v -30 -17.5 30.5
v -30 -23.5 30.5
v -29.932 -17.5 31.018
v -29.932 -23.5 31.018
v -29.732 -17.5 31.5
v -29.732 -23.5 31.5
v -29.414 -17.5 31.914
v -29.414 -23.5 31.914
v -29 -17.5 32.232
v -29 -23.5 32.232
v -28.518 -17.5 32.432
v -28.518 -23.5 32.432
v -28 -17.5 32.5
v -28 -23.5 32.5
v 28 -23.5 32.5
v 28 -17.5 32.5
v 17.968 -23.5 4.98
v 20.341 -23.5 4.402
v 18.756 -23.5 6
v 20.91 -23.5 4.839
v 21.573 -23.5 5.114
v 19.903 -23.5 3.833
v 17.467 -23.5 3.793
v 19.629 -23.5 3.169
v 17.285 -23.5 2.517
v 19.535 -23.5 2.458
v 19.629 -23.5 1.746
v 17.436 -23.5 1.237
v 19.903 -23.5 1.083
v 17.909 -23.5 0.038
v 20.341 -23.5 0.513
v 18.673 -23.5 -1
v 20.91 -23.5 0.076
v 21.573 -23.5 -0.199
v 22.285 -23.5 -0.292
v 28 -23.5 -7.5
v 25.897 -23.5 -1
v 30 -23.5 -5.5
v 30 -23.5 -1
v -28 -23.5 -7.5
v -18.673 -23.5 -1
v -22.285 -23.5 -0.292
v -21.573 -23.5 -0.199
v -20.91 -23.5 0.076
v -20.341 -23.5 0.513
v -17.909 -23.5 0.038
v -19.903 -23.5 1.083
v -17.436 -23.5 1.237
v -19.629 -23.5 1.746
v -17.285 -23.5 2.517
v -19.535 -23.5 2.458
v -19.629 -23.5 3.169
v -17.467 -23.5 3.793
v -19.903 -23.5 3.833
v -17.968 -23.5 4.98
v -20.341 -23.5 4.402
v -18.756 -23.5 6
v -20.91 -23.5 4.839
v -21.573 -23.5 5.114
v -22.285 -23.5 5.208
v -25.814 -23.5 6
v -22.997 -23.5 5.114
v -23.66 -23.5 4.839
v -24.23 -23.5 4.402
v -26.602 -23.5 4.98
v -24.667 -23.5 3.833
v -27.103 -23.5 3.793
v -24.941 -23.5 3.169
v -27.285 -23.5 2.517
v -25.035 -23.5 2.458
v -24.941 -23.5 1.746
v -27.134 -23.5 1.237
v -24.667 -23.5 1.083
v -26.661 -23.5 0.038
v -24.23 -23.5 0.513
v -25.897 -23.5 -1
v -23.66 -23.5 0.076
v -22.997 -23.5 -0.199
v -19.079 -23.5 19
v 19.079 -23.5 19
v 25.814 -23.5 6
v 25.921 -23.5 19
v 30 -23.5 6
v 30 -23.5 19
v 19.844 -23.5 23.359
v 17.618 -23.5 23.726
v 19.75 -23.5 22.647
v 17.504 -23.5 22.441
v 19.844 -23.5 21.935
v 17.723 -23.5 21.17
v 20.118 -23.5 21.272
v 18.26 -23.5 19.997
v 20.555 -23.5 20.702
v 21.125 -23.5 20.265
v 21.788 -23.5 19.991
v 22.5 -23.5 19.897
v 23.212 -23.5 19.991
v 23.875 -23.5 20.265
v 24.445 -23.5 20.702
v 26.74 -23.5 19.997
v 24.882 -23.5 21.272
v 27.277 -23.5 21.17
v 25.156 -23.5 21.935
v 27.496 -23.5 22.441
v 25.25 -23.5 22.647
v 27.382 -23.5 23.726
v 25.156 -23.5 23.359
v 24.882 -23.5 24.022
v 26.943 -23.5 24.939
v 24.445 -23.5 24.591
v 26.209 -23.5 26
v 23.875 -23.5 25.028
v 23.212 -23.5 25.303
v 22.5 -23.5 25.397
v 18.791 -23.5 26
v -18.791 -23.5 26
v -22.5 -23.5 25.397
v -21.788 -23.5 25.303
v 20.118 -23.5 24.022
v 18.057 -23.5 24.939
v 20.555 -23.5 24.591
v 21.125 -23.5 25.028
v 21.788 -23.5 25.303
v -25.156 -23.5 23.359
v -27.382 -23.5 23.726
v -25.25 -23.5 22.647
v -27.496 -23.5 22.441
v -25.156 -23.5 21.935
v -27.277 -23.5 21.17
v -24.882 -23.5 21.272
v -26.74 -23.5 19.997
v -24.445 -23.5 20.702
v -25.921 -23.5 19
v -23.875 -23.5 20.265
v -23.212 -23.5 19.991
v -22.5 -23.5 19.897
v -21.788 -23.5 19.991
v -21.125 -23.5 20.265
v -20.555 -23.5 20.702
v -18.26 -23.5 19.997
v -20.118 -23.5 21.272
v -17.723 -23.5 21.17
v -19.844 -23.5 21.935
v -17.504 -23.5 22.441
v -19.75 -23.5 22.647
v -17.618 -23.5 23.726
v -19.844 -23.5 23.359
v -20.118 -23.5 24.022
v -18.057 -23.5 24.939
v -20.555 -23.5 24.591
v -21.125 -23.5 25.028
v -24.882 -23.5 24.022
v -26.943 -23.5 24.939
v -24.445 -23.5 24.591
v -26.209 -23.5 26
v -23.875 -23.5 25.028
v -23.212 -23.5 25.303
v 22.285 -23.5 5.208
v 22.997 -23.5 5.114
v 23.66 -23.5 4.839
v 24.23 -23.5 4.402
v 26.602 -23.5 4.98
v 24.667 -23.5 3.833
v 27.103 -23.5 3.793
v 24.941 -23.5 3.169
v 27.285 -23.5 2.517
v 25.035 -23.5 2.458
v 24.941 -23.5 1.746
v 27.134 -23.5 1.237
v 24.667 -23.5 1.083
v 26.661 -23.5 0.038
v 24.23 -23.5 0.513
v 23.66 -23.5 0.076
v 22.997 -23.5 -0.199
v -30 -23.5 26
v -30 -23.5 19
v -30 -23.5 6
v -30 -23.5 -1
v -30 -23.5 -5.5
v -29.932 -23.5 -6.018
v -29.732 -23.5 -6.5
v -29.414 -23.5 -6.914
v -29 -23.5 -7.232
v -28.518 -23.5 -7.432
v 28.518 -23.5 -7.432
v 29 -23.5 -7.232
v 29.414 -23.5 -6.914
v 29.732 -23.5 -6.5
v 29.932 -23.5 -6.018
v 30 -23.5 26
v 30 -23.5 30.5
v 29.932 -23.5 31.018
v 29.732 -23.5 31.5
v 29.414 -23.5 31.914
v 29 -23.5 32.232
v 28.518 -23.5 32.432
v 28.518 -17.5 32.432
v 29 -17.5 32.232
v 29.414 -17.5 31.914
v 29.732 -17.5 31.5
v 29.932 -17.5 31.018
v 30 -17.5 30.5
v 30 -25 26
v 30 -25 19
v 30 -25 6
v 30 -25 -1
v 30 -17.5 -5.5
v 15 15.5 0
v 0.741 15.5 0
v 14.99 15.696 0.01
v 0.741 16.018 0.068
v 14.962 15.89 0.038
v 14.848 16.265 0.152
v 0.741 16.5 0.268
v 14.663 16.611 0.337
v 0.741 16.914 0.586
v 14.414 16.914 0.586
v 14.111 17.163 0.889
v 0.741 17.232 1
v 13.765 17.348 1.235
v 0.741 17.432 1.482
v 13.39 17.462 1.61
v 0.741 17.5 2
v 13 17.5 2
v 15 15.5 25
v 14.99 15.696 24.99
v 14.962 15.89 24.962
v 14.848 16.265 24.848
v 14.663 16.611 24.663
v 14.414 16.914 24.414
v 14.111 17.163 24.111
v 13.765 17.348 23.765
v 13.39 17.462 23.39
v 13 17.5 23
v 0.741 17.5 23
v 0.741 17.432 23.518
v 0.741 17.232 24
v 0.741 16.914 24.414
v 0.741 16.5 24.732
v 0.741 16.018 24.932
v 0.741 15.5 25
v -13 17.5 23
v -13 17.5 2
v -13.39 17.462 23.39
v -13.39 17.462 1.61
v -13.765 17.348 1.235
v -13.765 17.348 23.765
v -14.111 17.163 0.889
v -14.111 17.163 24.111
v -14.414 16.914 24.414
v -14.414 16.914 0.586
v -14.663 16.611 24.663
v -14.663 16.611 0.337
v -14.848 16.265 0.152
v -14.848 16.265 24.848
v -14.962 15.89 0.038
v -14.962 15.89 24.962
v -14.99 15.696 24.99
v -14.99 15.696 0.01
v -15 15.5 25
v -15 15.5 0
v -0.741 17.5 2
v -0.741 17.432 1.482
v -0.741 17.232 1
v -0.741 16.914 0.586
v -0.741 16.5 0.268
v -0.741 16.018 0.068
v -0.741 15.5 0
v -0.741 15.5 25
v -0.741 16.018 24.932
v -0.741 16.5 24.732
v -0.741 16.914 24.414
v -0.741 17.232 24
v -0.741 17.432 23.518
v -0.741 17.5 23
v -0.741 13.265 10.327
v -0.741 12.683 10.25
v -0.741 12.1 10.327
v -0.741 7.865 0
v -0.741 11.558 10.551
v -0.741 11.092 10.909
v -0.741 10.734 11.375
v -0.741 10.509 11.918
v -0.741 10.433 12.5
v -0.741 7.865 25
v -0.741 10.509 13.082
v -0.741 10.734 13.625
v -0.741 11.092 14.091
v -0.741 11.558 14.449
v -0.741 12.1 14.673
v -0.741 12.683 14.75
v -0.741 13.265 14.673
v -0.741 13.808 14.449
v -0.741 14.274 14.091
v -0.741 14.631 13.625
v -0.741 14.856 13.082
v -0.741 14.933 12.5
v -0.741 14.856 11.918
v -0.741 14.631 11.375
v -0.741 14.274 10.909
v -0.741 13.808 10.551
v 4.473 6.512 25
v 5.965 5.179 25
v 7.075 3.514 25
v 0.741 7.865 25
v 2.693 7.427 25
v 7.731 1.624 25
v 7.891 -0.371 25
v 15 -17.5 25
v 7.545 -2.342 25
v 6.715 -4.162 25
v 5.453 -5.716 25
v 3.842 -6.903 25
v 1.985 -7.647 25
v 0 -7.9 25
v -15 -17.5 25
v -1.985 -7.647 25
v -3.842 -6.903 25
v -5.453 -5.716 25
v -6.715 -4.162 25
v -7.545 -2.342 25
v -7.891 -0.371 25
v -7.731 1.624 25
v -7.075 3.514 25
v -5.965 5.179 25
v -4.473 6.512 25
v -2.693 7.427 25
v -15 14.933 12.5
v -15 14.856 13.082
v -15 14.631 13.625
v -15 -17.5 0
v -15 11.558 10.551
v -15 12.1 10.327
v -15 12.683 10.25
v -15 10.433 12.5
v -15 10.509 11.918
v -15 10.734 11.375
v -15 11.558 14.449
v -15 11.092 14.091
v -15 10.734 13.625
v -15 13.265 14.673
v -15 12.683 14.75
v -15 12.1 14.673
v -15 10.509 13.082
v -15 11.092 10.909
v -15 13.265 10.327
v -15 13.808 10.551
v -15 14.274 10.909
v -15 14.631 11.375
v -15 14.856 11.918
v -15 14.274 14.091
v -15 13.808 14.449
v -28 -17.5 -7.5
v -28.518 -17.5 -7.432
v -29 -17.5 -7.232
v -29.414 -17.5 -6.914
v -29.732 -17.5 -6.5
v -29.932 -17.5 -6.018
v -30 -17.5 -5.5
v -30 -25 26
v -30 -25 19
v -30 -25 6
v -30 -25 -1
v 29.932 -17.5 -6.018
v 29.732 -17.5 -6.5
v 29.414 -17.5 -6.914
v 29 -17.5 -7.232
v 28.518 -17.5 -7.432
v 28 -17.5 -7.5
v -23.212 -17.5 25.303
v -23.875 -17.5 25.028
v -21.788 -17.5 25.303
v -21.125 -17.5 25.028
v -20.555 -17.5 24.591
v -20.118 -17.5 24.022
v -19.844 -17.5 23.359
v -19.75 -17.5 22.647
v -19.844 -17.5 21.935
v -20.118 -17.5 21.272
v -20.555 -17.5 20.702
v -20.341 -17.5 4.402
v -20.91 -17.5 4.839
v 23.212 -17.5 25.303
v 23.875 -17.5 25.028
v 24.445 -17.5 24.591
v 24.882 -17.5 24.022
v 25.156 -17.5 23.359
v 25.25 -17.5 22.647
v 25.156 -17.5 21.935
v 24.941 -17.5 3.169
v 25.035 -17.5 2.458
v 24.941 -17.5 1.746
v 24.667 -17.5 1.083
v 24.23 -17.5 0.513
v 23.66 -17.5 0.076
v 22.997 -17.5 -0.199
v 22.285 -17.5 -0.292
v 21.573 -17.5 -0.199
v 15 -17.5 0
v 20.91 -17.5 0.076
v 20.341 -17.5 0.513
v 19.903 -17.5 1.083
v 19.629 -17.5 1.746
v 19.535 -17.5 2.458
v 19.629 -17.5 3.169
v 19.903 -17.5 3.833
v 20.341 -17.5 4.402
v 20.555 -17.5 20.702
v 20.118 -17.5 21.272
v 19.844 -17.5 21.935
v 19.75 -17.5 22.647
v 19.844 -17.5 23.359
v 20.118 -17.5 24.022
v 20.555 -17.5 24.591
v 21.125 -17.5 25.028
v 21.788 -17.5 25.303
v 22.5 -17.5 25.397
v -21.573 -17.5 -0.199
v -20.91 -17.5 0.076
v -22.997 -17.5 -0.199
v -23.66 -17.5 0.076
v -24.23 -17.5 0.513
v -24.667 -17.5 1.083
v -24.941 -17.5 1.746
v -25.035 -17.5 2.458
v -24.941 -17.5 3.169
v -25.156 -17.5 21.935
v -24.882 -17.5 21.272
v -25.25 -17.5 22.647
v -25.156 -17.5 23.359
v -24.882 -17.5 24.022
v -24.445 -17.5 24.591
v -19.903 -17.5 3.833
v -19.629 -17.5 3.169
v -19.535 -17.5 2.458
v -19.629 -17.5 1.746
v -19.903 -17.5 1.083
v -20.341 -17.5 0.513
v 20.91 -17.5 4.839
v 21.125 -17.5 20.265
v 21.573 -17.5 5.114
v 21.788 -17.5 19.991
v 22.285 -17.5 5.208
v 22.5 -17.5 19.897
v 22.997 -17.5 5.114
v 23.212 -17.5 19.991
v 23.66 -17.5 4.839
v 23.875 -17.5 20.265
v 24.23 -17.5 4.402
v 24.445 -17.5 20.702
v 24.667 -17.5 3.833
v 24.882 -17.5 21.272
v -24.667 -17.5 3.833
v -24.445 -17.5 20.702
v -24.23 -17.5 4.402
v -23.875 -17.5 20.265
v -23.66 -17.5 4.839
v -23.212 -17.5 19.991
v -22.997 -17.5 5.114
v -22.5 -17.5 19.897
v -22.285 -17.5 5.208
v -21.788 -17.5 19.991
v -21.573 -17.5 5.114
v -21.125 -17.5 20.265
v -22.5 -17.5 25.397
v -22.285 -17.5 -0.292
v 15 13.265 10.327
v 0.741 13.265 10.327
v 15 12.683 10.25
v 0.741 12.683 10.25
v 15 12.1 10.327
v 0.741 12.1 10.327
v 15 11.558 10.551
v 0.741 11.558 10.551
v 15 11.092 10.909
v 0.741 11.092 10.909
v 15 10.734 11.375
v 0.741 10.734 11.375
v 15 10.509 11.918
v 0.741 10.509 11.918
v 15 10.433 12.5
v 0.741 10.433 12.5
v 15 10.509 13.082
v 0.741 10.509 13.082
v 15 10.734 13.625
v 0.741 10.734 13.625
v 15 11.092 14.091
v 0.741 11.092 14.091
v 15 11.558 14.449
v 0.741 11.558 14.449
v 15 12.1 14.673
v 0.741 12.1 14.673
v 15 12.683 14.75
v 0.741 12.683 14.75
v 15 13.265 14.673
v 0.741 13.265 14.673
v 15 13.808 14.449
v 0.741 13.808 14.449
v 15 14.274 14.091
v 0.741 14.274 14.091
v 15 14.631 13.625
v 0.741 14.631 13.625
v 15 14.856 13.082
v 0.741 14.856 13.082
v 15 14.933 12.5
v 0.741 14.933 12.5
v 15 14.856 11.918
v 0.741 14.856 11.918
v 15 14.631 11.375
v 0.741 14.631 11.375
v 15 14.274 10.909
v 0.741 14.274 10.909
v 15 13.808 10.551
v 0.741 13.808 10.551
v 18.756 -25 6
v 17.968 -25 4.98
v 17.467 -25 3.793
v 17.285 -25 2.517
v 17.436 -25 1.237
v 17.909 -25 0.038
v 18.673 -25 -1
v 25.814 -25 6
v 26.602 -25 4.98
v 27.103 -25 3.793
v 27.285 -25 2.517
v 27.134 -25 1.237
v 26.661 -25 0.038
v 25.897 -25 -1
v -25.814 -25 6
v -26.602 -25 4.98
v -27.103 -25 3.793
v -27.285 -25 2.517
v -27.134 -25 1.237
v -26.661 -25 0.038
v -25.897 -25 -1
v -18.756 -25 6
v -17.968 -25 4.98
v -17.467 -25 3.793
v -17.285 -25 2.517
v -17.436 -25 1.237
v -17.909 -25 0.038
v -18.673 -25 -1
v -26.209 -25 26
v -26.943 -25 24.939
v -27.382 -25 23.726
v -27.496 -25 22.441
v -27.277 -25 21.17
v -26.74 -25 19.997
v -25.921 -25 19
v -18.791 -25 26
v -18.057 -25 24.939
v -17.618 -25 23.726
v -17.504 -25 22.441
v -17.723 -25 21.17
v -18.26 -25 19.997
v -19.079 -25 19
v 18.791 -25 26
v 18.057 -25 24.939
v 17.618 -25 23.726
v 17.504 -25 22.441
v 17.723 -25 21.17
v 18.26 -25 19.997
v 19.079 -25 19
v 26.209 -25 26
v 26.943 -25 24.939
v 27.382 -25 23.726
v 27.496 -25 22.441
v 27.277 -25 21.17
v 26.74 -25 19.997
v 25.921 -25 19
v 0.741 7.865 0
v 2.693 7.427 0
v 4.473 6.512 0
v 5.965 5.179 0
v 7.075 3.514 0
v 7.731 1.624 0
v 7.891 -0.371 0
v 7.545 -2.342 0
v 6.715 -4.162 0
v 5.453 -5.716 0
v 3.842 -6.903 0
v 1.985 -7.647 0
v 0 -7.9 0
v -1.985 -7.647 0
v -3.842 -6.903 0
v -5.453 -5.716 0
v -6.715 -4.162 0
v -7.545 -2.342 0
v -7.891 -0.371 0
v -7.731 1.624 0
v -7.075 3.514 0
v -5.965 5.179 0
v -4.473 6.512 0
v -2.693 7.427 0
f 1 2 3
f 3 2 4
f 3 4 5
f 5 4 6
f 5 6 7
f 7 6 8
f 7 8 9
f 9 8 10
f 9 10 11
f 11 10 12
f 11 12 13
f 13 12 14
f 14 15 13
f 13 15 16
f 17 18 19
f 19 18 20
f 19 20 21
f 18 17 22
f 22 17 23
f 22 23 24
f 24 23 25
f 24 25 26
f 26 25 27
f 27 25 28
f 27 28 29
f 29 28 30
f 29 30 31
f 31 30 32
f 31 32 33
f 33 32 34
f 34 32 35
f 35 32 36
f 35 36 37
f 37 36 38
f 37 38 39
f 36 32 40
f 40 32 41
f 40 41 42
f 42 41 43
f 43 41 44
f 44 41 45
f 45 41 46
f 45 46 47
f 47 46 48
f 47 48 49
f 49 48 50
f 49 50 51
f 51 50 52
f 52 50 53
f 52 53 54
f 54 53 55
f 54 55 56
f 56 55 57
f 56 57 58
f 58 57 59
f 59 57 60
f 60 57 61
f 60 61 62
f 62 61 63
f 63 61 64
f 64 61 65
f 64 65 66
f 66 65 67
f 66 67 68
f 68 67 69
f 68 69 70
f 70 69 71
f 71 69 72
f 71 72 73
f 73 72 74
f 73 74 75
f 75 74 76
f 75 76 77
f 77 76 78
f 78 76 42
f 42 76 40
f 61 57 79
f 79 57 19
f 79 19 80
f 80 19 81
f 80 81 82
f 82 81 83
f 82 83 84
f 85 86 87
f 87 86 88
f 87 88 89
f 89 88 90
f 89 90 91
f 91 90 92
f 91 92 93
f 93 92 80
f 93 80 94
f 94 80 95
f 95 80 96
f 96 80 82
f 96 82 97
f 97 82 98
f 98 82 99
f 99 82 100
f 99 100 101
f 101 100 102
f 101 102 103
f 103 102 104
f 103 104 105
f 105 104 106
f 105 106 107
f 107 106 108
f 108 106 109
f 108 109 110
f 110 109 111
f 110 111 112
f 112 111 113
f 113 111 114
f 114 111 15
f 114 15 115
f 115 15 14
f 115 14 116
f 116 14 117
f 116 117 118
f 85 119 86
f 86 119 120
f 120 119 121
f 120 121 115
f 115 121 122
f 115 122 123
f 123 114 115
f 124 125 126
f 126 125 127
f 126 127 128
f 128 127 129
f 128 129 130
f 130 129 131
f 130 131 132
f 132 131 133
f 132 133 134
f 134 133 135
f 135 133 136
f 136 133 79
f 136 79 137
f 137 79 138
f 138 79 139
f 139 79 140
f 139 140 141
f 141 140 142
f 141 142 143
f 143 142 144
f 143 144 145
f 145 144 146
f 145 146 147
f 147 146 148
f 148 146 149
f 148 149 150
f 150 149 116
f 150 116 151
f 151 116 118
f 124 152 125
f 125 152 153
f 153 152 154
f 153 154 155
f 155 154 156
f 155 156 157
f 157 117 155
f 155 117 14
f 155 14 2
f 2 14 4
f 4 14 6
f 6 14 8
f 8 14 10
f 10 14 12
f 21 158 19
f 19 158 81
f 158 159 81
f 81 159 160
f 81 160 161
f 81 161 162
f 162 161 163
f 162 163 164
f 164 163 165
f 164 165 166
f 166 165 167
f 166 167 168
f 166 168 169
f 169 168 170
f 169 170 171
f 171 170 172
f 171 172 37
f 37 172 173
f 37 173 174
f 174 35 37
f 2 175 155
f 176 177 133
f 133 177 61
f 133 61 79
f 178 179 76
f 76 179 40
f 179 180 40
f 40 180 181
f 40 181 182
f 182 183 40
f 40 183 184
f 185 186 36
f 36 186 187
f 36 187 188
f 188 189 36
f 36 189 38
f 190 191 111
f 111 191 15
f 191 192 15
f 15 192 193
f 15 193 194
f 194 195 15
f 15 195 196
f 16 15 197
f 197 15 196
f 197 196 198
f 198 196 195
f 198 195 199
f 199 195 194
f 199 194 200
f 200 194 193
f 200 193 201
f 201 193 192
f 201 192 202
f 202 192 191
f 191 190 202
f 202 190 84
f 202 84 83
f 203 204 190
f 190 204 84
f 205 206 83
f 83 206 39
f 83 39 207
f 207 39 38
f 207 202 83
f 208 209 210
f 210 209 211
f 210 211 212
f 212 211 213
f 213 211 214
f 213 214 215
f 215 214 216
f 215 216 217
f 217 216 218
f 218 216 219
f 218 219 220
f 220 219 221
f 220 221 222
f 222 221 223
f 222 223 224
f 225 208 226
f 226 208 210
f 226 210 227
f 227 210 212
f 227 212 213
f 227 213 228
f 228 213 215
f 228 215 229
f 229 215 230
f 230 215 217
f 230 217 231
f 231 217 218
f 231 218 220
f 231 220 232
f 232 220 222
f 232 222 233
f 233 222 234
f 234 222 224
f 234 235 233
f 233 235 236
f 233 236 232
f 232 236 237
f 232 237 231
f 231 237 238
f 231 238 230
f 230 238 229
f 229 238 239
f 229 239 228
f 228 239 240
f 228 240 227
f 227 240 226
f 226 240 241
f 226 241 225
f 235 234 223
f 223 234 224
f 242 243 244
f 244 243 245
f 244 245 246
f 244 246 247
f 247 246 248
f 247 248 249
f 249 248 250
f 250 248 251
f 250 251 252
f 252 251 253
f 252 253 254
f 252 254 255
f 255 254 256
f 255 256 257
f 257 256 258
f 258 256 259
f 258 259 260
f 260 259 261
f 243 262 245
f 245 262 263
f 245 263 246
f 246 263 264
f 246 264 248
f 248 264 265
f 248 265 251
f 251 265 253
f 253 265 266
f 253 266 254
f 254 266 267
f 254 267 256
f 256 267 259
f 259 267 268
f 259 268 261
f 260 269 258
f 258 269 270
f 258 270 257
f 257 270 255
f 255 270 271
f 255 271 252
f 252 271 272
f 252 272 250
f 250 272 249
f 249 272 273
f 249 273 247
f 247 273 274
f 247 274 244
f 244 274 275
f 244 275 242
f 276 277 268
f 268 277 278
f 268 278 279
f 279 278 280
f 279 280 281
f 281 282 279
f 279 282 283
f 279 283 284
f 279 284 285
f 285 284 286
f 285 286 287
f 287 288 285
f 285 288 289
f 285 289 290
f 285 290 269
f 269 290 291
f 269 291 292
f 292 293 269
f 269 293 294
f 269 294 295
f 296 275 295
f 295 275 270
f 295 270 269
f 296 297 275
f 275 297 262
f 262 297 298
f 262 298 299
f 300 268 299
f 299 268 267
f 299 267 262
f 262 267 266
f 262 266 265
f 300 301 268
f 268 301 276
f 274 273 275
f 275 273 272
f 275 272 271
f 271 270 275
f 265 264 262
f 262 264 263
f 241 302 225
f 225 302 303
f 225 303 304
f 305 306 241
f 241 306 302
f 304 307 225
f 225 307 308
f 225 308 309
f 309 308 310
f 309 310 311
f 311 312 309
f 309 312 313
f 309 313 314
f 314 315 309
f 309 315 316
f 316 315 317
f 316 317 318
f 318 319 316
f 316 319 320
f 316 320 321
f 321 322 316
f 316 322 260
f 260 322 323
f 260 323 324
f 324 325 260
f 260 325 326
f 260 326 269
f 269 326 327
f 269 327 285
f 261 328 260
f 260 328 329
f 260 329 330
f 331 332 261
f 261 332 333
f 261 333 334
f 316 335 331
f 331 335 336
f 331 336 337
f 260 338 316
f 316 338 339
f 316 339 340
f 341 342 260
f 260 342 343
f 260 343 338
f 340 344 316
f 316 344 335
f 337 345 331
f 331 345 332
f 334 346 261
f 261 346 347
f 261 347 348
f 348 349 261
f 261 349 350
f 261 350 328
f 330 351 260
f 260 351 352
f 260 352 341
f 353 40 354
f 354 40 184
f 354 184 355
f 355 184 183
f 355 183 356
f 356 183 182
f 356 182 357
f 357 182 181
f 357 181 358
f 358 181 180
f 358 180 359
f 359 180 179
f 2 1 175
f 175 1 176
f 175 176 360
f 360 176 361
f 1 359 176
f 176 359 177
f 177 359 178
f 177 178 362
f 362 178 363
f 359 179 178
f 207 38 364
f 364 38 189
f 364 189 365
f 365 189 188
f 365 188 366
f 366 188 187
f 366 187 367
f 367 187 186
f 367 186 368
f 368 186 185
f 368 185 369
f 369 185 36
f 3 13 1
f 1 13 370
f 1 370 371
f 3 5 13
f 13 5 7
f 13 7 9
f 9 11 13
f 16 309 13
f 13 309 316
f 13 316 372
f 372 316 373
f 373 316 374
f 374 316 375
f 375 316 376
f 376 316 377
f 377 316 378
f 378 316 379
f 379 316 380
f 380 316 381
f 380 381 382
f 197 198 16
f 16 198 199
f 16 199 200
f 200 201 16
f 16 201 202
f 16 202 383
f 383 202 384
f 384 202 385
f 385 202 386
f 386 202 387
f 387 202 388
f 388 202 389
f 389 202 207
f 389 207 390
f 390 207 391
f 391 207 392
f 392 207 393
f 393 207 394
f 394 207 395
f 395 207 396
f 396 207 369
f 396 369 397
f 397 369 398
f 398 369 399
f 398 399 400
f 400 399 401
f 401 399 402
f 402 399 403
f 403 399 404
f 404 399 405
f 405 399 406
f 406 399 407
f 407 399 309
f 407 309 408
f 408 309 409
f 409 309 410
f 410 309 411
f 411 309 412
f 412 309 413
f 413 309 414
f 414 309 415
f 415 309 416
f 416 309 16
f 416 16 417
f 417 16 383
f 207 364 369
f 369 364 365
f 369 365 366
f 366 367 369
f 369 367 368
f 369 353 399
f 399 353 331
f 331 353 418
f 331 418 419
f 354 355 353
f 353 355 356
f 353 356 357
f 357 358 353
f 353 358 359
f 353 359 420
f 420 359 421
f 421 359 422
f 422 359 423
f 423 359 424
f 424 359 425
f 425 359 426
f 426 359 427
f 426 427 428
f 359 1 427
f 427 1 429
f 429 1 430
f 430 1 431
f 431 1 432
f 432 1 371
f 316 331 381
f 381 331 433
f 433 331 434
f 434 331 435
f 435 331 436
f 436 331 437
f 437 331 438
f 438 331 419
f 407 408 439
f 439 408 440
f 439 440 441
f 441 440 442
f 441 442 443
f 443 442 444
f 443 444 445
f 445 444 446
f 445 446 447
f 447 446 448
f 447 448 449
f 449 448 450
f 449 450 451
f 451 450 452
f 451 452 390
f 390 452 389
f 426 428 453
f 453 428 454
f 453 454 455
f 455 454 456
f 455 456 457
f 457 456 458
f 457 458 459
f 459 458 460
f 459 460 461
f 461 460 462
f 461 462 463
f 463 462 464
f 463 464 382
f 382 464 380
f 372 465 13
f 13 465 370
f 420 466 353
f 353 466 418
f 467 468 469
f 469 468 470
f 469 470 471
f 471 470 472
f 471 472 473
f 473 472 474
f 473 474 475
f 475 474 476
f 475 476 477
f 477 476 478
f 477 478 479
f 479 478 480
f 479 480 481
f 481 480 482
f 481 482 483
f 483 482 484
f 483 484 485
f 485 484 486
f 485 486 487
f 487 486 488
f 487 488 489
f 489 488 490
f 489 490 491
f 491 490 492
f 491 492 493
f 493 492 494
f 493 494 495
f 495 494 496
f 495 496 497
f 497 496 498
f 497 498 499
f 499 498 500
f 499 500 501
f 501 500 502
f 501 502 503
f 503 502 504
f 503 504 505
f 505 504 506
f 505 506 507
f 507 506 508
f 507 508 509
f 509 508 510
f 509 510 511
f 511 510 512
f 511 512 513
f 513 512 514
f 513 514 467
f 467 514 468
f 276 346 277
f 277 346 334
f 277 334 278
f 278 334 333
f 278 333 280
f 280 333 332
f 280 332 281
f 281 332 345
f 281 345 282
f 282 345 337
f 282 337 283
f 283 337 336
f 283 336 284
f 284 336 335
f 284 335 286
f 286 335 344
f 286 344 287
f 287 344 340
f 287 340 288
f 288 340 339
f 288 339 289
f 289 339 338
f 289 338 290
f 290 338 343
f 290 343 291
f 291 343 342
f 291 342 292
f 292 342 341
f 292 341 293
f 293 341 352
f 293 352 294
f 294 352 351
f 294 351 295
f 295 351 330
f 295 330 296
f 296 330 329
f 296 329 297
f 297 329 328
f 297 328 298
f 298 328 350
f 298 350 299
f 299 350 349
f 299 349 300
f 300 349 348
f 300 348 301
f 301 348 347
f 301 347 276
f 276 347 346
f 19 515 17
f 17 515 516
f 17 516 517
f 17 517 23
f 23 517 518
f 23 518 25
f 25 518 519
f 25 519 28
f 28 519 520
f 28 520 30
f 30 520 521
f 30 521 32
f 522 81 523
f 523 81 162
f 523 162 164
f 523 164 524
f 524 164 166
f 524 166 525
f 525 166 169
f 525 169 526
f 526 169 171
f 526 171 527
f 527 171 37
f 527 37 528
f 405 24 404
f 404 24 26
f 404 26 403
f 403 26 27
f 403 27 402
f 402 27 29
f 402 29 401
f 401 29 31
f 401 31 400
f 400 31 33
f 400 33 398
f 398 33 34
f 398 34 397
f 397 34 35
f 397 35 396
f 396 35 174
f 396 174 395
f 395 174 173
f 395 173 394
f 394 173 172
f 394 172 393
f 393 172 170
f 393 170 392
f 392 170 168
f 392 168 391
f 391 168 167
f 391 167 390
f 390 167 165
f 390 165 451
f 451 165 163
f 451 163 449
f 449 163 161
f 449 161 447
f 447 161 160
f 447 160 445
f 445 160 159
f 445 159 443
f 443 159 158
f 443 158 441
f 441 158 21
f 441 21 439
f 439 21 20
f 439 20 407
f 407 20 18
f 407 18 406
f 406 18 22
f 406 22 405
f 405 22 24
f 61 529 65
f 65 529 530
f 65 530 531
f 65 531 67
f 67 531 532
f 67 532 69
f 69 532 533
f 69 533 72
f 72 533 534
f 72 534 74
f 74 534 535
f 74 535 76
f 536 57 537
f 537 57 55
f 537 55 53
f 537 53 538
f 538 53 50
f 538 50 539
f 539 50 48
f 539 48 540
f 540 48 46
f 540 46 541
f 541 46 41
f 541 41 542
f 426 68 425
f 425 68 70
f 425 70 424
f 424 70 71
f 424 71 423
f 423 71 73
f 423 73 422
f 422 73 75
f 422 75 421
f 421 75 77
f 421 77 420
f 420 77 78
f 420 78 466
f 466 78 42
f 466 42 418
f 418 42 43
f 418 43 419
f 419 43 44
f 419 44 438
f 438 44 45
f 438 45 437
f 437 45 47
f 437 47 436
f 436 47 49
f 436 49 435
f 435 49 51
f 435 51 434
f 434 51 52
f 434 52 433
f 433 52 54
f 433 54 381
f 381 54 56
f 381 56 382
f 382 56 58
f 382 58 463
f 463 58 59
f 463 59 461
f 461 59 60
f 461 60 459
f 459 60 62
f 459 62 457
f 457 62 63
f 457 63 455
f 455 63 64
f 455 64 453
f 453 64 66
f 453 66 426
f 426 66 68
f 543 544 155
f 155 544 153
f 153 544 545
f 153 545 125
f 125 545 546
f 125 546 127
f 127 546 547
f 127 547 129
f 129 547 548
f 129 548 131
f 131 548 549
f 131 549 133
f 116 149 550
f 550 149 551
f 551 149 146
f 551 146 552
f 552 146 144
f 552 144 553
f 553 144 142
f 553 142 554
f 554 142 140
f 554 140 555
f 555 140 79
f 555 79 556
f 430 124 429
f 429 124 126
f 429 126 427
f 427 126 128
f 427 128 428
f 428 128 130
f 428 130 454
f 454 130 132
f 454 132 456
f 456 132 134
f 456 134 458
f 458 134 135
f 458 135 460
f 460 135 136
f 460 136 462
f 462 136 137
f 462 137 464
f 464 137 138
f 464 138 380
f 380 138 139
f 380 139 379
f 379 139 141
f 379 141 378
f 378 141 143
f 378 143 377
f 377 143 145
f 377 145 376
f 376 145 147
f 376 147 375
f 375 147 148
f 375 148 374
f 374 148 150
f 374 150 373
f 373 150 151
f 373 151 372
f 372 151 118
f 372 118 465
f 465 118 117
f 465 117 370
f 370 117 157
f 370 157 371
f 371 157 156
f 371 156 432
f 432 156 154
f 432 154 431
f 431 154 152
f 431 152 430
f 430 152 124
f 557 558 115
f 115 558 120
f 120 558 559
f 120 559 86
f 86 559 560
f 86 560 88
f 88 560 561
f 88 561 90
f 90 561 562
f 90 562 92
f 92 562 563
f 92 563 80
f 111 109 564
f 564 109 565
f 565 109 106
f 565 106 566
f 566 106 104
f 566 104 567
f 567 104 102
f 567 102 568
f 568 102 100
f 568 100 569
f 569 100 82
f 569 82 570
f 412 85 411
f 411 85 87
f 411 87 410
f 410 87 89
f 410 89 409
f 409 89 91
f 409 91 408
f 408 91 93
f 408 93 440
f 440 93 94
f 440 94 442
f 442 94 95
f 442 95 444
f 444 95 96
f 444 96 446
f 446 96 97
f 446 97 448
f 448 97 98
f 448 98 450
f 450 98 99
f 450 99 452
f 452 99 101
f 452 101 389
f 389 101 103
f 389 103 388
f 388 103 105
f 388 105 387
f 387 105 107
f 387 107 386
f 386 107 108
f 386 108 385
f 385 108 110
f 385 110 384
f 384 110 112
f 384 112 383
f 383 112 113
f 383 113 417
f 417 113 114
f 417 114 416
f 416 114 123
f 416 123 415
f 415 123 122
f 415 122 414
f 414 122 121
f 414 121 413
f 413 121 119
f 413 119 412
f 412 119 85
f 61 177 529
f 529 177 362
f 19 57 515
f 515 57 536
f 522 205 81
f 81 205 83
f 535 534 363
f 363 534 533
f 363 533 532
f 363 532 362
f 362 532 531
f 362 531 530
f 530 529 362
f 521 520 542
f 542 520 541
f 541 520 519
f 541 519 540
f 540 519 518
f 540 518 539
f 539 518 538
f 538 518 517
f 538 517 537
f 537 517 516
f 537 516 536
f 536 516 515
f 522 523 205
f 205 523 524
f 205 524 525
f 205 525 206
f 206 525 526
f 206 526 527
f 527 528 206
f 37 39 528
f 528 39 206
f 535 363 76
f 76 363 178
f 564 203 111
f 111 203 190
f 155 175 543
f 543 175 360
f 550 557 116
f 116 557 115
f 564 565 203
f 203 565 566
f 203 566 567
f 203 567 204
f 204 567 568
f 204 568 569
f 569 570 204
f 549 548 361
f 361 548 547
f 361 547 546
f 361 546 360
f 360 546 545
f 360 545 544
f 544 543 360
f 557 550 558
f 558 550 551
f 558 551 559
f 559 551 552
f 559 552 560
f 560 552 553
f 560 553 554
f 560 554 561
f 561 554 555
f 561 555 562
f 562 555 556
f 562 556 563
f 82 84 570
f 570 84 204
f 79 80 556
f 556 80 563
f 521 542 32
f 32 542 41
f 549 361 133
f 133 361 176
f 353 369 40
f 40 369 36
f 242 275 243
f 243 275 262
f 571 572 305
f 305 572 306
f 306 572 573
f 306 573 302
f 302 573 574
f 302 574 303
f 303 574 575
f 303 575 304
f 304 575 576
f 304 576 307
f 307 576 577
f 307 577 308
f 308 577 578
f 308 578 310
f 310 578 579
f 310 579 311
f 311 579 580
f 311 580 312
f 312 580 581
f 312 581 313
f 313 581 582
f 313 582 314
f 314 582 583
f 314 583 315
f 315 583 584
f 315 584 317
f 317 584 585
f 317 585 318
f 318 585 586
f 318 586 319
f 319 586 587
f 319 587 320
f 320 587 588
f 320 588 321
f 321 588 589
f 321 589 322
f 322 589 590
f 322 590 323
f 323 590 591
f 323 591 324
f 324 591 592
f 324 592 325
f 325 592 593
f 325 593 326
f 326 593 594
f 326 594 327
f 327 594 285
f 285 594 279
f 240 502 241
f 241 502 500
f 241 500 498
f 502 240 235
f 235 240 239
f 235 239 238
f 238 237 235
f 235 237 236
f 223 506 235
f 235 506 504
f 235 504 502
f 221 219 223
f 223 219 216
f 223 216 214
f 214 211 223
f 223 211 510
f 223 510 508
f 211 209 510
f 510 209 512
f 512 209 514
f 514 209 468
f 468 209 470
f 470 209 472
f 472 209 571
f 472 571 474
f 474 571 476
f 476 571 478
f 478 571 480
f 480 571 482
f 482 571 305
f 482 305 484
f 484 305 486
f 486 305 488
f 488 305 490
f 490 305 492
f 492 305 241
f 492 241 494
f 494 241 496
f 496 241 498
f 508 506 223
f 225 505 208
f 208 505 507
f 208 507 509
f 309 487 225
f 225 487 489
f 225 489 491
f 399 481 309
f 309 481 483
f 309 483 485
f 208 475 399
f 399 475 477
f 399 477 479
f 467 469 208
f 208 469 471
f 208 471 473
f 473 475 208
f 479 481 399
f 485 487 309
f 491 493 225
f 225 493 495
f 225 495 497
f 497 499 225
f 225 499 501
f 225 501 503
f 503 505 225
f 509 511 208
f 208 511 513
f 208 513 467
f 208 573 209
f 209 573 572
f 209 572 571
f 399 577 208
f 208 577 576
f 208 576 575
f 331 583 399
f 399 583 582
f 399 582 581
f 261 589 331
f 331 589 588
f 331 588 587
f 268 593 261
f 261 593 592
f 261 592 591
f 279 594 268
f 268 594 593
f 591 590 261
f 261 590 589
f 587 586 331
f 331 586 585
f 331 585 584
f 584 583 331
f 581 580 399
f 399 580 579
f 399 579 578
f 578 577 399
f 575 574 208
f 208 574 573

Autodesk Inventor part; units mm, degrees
ref_plane "YZ Plane" through (0, 0, 0) normal (1, 0, 0) x (0, 1, 0)
ref_plane "XZ Plane" through (0, 0, 0) normal (0, 1, 0) x (-1, 0, 0)
ref_plane "XY Plane" through (0, 0, 0) normal (0, 0, 1) x (1, 0, 0)
sketch "Sketch1" plane through (0, 0, 0) normal (0, 0, 1) x (1, 0, 0)
  arc A0 (-0.7406, 7.8652) -> (0.7406, 7.8652) centre (0, 0) ccw
  line L0 (15, 17.5) -> (15, -17.5)
  line L1 (15, -17.5) -> (-15, -17.5)
  line L2 (-15, -17.5) -> (-15, 17.5)
  line L3 (-15, 17.5) -> (15, -17.5) construction
  line L4 (15, 17.5) -> (-15, -17.5) construction
  line L5 (-0.7406, 7.8652) -> (-0.7406, 17.5)
  line L6 (0.7406, 7.8652) -> (0.7406, 17.5)
  line L7 (-15, 17.5) -> (-0.7406, 17.5)
  line L8 (0.7406, 17.5) -> (15, 17.5)
  dimension "d0" = 15.8
  dimension "d1" = 30
  dimension "d2" = 35
  dimension "d26" = 35
extrude "Extrusion1" add sketch "Sketch1" along normal blind 25
sketch "Sketch2" plane through (-15, -17.5, 0) normal (0, -1, 0) x (1, 0, 0)
  line L0 (15, 0) -> (15, 25)
  line L1 (7.1, 25) -> (22.9, 25) projected
  line L2 (45, 32.5) -> (-15, 32.5)
  line L3 (-15, 32.5) -> (-15, -7.5)
  line L4 (-15, -7.5) -> (45, -7.5)
  line L5 (45, -7.5) -> (45, 32.5)
  line L6 (45, 32.5) -> (-15, -7.5) construction
  line L7 (-15, 32.5) -> (45, -7.5) construction
  point P0 (15.7406, 25)
  point P1 (14.2594, 25)
  point P2 (15, 12.5)
  dimension "d7" = 60
  dimension "d8" = 40
extrude "Extrusion2" add sketch "Sketch2" along normal blind 6
sketch "Sketch4" plane through (-15, -23.5, 0) normal (0, -1, 0) x (1, 0, 0)
  line L0 (-15, 32.5) -> (-15, -7.5) projected
  line L1 (45, -7.5) -> (45, 32.5) projected
  line L2 (-15, -1) -> (45, -1)
  line L3 (-15, 6) -> (45, 6)
  line L4 (-15, 19) -> (45, 19)
  line L5 (-15, 26) -> (45, 26)
  line L6 (-15, -1) -> (-15, 6)
  line L7 (-15, 19) -> (-15, 26)
  line L8 (45, 26) -> (45, 19)
  line L9 (45, 6) -> (45, -1)
  point P0 (15, 0)
extrude "Extrusion3" add sketch "Sketch4" along normal blind 1.5 contours L5 L1 L4 L0 | L3 L1 L2 L0
sketch "Sketch5" plane through (-15, -25, 0) normal (0, -1, 0) x (1, 0, 0)
  line L0 (-14.5701, -1.0846) -> (0, 6)
  line L1 (45, 6) -> (-15, 6) projected
  line L2 (0, 0) -> (0, 25) projected
  line L3 (-15, 19) -> (45, 19) projected
  line L4 (-15, 19) -> (0, 26.2937)
  line L5 (15, 0) -> (15, 25)
  line L6 (7.1, 25) -> (22.9, 25) projected
  line L7 (44.5701, -1.0846) -> (30, 6)
  line L8 (45, 19) -> (30, 26.2937)
  point P0 (-7.285, 2.4577)
  point P1 (-7.5, 22.6468)
  point P2 (15.7406, 25)
  point P3 (14.2594, 25)
  point P4 (37.285, 2.4577)
  point P5 (37.5, 22.6468)
hole "Hole1" at (-22.285, -25, 2.4577) at (-22.5, -25, 22.6468) at (22.285, -25, 2.4577) at (22.5, -25, 22.6468) direction (0, 1, 0) diameter 5.5 end through all counterbore diameter 10 counterbore depth 1.5
sketch "Sketch6" plane through (-15, 17.5, 0) normal (-1, 0, 0) x (0, 0, 1)
  line L0 (25, 0) -> (25, -35) projected
  line L1 (0, -9.6348) -> (25, -9.6348) projected
  line L2 (25, 0) -> (0, -9.6348)
  point P0 (0, -17.5)
  point P1 (12.5, -4.8174)
hole "Hole2" at (-15, 12.6826, 12.5) direction (1, 0, 0) diameter 4.5 end through all
fillet "Fillet1" radius 2 10 edges at (30, -20.5, -7.5) (-30, -20.5, -7.5) (-15, 17.5, 12.5) (-7.8703, 17.5, 0) (7.8703, 17.5, 0) (7.8703, 17.5, 25) (-7.8703, 17.5, 25) (15, 17.5, 12.5) (30, -20.5, 32.5) (-30, -20.5, 32.5)
properties part number "CarroZ - FusoZ"
